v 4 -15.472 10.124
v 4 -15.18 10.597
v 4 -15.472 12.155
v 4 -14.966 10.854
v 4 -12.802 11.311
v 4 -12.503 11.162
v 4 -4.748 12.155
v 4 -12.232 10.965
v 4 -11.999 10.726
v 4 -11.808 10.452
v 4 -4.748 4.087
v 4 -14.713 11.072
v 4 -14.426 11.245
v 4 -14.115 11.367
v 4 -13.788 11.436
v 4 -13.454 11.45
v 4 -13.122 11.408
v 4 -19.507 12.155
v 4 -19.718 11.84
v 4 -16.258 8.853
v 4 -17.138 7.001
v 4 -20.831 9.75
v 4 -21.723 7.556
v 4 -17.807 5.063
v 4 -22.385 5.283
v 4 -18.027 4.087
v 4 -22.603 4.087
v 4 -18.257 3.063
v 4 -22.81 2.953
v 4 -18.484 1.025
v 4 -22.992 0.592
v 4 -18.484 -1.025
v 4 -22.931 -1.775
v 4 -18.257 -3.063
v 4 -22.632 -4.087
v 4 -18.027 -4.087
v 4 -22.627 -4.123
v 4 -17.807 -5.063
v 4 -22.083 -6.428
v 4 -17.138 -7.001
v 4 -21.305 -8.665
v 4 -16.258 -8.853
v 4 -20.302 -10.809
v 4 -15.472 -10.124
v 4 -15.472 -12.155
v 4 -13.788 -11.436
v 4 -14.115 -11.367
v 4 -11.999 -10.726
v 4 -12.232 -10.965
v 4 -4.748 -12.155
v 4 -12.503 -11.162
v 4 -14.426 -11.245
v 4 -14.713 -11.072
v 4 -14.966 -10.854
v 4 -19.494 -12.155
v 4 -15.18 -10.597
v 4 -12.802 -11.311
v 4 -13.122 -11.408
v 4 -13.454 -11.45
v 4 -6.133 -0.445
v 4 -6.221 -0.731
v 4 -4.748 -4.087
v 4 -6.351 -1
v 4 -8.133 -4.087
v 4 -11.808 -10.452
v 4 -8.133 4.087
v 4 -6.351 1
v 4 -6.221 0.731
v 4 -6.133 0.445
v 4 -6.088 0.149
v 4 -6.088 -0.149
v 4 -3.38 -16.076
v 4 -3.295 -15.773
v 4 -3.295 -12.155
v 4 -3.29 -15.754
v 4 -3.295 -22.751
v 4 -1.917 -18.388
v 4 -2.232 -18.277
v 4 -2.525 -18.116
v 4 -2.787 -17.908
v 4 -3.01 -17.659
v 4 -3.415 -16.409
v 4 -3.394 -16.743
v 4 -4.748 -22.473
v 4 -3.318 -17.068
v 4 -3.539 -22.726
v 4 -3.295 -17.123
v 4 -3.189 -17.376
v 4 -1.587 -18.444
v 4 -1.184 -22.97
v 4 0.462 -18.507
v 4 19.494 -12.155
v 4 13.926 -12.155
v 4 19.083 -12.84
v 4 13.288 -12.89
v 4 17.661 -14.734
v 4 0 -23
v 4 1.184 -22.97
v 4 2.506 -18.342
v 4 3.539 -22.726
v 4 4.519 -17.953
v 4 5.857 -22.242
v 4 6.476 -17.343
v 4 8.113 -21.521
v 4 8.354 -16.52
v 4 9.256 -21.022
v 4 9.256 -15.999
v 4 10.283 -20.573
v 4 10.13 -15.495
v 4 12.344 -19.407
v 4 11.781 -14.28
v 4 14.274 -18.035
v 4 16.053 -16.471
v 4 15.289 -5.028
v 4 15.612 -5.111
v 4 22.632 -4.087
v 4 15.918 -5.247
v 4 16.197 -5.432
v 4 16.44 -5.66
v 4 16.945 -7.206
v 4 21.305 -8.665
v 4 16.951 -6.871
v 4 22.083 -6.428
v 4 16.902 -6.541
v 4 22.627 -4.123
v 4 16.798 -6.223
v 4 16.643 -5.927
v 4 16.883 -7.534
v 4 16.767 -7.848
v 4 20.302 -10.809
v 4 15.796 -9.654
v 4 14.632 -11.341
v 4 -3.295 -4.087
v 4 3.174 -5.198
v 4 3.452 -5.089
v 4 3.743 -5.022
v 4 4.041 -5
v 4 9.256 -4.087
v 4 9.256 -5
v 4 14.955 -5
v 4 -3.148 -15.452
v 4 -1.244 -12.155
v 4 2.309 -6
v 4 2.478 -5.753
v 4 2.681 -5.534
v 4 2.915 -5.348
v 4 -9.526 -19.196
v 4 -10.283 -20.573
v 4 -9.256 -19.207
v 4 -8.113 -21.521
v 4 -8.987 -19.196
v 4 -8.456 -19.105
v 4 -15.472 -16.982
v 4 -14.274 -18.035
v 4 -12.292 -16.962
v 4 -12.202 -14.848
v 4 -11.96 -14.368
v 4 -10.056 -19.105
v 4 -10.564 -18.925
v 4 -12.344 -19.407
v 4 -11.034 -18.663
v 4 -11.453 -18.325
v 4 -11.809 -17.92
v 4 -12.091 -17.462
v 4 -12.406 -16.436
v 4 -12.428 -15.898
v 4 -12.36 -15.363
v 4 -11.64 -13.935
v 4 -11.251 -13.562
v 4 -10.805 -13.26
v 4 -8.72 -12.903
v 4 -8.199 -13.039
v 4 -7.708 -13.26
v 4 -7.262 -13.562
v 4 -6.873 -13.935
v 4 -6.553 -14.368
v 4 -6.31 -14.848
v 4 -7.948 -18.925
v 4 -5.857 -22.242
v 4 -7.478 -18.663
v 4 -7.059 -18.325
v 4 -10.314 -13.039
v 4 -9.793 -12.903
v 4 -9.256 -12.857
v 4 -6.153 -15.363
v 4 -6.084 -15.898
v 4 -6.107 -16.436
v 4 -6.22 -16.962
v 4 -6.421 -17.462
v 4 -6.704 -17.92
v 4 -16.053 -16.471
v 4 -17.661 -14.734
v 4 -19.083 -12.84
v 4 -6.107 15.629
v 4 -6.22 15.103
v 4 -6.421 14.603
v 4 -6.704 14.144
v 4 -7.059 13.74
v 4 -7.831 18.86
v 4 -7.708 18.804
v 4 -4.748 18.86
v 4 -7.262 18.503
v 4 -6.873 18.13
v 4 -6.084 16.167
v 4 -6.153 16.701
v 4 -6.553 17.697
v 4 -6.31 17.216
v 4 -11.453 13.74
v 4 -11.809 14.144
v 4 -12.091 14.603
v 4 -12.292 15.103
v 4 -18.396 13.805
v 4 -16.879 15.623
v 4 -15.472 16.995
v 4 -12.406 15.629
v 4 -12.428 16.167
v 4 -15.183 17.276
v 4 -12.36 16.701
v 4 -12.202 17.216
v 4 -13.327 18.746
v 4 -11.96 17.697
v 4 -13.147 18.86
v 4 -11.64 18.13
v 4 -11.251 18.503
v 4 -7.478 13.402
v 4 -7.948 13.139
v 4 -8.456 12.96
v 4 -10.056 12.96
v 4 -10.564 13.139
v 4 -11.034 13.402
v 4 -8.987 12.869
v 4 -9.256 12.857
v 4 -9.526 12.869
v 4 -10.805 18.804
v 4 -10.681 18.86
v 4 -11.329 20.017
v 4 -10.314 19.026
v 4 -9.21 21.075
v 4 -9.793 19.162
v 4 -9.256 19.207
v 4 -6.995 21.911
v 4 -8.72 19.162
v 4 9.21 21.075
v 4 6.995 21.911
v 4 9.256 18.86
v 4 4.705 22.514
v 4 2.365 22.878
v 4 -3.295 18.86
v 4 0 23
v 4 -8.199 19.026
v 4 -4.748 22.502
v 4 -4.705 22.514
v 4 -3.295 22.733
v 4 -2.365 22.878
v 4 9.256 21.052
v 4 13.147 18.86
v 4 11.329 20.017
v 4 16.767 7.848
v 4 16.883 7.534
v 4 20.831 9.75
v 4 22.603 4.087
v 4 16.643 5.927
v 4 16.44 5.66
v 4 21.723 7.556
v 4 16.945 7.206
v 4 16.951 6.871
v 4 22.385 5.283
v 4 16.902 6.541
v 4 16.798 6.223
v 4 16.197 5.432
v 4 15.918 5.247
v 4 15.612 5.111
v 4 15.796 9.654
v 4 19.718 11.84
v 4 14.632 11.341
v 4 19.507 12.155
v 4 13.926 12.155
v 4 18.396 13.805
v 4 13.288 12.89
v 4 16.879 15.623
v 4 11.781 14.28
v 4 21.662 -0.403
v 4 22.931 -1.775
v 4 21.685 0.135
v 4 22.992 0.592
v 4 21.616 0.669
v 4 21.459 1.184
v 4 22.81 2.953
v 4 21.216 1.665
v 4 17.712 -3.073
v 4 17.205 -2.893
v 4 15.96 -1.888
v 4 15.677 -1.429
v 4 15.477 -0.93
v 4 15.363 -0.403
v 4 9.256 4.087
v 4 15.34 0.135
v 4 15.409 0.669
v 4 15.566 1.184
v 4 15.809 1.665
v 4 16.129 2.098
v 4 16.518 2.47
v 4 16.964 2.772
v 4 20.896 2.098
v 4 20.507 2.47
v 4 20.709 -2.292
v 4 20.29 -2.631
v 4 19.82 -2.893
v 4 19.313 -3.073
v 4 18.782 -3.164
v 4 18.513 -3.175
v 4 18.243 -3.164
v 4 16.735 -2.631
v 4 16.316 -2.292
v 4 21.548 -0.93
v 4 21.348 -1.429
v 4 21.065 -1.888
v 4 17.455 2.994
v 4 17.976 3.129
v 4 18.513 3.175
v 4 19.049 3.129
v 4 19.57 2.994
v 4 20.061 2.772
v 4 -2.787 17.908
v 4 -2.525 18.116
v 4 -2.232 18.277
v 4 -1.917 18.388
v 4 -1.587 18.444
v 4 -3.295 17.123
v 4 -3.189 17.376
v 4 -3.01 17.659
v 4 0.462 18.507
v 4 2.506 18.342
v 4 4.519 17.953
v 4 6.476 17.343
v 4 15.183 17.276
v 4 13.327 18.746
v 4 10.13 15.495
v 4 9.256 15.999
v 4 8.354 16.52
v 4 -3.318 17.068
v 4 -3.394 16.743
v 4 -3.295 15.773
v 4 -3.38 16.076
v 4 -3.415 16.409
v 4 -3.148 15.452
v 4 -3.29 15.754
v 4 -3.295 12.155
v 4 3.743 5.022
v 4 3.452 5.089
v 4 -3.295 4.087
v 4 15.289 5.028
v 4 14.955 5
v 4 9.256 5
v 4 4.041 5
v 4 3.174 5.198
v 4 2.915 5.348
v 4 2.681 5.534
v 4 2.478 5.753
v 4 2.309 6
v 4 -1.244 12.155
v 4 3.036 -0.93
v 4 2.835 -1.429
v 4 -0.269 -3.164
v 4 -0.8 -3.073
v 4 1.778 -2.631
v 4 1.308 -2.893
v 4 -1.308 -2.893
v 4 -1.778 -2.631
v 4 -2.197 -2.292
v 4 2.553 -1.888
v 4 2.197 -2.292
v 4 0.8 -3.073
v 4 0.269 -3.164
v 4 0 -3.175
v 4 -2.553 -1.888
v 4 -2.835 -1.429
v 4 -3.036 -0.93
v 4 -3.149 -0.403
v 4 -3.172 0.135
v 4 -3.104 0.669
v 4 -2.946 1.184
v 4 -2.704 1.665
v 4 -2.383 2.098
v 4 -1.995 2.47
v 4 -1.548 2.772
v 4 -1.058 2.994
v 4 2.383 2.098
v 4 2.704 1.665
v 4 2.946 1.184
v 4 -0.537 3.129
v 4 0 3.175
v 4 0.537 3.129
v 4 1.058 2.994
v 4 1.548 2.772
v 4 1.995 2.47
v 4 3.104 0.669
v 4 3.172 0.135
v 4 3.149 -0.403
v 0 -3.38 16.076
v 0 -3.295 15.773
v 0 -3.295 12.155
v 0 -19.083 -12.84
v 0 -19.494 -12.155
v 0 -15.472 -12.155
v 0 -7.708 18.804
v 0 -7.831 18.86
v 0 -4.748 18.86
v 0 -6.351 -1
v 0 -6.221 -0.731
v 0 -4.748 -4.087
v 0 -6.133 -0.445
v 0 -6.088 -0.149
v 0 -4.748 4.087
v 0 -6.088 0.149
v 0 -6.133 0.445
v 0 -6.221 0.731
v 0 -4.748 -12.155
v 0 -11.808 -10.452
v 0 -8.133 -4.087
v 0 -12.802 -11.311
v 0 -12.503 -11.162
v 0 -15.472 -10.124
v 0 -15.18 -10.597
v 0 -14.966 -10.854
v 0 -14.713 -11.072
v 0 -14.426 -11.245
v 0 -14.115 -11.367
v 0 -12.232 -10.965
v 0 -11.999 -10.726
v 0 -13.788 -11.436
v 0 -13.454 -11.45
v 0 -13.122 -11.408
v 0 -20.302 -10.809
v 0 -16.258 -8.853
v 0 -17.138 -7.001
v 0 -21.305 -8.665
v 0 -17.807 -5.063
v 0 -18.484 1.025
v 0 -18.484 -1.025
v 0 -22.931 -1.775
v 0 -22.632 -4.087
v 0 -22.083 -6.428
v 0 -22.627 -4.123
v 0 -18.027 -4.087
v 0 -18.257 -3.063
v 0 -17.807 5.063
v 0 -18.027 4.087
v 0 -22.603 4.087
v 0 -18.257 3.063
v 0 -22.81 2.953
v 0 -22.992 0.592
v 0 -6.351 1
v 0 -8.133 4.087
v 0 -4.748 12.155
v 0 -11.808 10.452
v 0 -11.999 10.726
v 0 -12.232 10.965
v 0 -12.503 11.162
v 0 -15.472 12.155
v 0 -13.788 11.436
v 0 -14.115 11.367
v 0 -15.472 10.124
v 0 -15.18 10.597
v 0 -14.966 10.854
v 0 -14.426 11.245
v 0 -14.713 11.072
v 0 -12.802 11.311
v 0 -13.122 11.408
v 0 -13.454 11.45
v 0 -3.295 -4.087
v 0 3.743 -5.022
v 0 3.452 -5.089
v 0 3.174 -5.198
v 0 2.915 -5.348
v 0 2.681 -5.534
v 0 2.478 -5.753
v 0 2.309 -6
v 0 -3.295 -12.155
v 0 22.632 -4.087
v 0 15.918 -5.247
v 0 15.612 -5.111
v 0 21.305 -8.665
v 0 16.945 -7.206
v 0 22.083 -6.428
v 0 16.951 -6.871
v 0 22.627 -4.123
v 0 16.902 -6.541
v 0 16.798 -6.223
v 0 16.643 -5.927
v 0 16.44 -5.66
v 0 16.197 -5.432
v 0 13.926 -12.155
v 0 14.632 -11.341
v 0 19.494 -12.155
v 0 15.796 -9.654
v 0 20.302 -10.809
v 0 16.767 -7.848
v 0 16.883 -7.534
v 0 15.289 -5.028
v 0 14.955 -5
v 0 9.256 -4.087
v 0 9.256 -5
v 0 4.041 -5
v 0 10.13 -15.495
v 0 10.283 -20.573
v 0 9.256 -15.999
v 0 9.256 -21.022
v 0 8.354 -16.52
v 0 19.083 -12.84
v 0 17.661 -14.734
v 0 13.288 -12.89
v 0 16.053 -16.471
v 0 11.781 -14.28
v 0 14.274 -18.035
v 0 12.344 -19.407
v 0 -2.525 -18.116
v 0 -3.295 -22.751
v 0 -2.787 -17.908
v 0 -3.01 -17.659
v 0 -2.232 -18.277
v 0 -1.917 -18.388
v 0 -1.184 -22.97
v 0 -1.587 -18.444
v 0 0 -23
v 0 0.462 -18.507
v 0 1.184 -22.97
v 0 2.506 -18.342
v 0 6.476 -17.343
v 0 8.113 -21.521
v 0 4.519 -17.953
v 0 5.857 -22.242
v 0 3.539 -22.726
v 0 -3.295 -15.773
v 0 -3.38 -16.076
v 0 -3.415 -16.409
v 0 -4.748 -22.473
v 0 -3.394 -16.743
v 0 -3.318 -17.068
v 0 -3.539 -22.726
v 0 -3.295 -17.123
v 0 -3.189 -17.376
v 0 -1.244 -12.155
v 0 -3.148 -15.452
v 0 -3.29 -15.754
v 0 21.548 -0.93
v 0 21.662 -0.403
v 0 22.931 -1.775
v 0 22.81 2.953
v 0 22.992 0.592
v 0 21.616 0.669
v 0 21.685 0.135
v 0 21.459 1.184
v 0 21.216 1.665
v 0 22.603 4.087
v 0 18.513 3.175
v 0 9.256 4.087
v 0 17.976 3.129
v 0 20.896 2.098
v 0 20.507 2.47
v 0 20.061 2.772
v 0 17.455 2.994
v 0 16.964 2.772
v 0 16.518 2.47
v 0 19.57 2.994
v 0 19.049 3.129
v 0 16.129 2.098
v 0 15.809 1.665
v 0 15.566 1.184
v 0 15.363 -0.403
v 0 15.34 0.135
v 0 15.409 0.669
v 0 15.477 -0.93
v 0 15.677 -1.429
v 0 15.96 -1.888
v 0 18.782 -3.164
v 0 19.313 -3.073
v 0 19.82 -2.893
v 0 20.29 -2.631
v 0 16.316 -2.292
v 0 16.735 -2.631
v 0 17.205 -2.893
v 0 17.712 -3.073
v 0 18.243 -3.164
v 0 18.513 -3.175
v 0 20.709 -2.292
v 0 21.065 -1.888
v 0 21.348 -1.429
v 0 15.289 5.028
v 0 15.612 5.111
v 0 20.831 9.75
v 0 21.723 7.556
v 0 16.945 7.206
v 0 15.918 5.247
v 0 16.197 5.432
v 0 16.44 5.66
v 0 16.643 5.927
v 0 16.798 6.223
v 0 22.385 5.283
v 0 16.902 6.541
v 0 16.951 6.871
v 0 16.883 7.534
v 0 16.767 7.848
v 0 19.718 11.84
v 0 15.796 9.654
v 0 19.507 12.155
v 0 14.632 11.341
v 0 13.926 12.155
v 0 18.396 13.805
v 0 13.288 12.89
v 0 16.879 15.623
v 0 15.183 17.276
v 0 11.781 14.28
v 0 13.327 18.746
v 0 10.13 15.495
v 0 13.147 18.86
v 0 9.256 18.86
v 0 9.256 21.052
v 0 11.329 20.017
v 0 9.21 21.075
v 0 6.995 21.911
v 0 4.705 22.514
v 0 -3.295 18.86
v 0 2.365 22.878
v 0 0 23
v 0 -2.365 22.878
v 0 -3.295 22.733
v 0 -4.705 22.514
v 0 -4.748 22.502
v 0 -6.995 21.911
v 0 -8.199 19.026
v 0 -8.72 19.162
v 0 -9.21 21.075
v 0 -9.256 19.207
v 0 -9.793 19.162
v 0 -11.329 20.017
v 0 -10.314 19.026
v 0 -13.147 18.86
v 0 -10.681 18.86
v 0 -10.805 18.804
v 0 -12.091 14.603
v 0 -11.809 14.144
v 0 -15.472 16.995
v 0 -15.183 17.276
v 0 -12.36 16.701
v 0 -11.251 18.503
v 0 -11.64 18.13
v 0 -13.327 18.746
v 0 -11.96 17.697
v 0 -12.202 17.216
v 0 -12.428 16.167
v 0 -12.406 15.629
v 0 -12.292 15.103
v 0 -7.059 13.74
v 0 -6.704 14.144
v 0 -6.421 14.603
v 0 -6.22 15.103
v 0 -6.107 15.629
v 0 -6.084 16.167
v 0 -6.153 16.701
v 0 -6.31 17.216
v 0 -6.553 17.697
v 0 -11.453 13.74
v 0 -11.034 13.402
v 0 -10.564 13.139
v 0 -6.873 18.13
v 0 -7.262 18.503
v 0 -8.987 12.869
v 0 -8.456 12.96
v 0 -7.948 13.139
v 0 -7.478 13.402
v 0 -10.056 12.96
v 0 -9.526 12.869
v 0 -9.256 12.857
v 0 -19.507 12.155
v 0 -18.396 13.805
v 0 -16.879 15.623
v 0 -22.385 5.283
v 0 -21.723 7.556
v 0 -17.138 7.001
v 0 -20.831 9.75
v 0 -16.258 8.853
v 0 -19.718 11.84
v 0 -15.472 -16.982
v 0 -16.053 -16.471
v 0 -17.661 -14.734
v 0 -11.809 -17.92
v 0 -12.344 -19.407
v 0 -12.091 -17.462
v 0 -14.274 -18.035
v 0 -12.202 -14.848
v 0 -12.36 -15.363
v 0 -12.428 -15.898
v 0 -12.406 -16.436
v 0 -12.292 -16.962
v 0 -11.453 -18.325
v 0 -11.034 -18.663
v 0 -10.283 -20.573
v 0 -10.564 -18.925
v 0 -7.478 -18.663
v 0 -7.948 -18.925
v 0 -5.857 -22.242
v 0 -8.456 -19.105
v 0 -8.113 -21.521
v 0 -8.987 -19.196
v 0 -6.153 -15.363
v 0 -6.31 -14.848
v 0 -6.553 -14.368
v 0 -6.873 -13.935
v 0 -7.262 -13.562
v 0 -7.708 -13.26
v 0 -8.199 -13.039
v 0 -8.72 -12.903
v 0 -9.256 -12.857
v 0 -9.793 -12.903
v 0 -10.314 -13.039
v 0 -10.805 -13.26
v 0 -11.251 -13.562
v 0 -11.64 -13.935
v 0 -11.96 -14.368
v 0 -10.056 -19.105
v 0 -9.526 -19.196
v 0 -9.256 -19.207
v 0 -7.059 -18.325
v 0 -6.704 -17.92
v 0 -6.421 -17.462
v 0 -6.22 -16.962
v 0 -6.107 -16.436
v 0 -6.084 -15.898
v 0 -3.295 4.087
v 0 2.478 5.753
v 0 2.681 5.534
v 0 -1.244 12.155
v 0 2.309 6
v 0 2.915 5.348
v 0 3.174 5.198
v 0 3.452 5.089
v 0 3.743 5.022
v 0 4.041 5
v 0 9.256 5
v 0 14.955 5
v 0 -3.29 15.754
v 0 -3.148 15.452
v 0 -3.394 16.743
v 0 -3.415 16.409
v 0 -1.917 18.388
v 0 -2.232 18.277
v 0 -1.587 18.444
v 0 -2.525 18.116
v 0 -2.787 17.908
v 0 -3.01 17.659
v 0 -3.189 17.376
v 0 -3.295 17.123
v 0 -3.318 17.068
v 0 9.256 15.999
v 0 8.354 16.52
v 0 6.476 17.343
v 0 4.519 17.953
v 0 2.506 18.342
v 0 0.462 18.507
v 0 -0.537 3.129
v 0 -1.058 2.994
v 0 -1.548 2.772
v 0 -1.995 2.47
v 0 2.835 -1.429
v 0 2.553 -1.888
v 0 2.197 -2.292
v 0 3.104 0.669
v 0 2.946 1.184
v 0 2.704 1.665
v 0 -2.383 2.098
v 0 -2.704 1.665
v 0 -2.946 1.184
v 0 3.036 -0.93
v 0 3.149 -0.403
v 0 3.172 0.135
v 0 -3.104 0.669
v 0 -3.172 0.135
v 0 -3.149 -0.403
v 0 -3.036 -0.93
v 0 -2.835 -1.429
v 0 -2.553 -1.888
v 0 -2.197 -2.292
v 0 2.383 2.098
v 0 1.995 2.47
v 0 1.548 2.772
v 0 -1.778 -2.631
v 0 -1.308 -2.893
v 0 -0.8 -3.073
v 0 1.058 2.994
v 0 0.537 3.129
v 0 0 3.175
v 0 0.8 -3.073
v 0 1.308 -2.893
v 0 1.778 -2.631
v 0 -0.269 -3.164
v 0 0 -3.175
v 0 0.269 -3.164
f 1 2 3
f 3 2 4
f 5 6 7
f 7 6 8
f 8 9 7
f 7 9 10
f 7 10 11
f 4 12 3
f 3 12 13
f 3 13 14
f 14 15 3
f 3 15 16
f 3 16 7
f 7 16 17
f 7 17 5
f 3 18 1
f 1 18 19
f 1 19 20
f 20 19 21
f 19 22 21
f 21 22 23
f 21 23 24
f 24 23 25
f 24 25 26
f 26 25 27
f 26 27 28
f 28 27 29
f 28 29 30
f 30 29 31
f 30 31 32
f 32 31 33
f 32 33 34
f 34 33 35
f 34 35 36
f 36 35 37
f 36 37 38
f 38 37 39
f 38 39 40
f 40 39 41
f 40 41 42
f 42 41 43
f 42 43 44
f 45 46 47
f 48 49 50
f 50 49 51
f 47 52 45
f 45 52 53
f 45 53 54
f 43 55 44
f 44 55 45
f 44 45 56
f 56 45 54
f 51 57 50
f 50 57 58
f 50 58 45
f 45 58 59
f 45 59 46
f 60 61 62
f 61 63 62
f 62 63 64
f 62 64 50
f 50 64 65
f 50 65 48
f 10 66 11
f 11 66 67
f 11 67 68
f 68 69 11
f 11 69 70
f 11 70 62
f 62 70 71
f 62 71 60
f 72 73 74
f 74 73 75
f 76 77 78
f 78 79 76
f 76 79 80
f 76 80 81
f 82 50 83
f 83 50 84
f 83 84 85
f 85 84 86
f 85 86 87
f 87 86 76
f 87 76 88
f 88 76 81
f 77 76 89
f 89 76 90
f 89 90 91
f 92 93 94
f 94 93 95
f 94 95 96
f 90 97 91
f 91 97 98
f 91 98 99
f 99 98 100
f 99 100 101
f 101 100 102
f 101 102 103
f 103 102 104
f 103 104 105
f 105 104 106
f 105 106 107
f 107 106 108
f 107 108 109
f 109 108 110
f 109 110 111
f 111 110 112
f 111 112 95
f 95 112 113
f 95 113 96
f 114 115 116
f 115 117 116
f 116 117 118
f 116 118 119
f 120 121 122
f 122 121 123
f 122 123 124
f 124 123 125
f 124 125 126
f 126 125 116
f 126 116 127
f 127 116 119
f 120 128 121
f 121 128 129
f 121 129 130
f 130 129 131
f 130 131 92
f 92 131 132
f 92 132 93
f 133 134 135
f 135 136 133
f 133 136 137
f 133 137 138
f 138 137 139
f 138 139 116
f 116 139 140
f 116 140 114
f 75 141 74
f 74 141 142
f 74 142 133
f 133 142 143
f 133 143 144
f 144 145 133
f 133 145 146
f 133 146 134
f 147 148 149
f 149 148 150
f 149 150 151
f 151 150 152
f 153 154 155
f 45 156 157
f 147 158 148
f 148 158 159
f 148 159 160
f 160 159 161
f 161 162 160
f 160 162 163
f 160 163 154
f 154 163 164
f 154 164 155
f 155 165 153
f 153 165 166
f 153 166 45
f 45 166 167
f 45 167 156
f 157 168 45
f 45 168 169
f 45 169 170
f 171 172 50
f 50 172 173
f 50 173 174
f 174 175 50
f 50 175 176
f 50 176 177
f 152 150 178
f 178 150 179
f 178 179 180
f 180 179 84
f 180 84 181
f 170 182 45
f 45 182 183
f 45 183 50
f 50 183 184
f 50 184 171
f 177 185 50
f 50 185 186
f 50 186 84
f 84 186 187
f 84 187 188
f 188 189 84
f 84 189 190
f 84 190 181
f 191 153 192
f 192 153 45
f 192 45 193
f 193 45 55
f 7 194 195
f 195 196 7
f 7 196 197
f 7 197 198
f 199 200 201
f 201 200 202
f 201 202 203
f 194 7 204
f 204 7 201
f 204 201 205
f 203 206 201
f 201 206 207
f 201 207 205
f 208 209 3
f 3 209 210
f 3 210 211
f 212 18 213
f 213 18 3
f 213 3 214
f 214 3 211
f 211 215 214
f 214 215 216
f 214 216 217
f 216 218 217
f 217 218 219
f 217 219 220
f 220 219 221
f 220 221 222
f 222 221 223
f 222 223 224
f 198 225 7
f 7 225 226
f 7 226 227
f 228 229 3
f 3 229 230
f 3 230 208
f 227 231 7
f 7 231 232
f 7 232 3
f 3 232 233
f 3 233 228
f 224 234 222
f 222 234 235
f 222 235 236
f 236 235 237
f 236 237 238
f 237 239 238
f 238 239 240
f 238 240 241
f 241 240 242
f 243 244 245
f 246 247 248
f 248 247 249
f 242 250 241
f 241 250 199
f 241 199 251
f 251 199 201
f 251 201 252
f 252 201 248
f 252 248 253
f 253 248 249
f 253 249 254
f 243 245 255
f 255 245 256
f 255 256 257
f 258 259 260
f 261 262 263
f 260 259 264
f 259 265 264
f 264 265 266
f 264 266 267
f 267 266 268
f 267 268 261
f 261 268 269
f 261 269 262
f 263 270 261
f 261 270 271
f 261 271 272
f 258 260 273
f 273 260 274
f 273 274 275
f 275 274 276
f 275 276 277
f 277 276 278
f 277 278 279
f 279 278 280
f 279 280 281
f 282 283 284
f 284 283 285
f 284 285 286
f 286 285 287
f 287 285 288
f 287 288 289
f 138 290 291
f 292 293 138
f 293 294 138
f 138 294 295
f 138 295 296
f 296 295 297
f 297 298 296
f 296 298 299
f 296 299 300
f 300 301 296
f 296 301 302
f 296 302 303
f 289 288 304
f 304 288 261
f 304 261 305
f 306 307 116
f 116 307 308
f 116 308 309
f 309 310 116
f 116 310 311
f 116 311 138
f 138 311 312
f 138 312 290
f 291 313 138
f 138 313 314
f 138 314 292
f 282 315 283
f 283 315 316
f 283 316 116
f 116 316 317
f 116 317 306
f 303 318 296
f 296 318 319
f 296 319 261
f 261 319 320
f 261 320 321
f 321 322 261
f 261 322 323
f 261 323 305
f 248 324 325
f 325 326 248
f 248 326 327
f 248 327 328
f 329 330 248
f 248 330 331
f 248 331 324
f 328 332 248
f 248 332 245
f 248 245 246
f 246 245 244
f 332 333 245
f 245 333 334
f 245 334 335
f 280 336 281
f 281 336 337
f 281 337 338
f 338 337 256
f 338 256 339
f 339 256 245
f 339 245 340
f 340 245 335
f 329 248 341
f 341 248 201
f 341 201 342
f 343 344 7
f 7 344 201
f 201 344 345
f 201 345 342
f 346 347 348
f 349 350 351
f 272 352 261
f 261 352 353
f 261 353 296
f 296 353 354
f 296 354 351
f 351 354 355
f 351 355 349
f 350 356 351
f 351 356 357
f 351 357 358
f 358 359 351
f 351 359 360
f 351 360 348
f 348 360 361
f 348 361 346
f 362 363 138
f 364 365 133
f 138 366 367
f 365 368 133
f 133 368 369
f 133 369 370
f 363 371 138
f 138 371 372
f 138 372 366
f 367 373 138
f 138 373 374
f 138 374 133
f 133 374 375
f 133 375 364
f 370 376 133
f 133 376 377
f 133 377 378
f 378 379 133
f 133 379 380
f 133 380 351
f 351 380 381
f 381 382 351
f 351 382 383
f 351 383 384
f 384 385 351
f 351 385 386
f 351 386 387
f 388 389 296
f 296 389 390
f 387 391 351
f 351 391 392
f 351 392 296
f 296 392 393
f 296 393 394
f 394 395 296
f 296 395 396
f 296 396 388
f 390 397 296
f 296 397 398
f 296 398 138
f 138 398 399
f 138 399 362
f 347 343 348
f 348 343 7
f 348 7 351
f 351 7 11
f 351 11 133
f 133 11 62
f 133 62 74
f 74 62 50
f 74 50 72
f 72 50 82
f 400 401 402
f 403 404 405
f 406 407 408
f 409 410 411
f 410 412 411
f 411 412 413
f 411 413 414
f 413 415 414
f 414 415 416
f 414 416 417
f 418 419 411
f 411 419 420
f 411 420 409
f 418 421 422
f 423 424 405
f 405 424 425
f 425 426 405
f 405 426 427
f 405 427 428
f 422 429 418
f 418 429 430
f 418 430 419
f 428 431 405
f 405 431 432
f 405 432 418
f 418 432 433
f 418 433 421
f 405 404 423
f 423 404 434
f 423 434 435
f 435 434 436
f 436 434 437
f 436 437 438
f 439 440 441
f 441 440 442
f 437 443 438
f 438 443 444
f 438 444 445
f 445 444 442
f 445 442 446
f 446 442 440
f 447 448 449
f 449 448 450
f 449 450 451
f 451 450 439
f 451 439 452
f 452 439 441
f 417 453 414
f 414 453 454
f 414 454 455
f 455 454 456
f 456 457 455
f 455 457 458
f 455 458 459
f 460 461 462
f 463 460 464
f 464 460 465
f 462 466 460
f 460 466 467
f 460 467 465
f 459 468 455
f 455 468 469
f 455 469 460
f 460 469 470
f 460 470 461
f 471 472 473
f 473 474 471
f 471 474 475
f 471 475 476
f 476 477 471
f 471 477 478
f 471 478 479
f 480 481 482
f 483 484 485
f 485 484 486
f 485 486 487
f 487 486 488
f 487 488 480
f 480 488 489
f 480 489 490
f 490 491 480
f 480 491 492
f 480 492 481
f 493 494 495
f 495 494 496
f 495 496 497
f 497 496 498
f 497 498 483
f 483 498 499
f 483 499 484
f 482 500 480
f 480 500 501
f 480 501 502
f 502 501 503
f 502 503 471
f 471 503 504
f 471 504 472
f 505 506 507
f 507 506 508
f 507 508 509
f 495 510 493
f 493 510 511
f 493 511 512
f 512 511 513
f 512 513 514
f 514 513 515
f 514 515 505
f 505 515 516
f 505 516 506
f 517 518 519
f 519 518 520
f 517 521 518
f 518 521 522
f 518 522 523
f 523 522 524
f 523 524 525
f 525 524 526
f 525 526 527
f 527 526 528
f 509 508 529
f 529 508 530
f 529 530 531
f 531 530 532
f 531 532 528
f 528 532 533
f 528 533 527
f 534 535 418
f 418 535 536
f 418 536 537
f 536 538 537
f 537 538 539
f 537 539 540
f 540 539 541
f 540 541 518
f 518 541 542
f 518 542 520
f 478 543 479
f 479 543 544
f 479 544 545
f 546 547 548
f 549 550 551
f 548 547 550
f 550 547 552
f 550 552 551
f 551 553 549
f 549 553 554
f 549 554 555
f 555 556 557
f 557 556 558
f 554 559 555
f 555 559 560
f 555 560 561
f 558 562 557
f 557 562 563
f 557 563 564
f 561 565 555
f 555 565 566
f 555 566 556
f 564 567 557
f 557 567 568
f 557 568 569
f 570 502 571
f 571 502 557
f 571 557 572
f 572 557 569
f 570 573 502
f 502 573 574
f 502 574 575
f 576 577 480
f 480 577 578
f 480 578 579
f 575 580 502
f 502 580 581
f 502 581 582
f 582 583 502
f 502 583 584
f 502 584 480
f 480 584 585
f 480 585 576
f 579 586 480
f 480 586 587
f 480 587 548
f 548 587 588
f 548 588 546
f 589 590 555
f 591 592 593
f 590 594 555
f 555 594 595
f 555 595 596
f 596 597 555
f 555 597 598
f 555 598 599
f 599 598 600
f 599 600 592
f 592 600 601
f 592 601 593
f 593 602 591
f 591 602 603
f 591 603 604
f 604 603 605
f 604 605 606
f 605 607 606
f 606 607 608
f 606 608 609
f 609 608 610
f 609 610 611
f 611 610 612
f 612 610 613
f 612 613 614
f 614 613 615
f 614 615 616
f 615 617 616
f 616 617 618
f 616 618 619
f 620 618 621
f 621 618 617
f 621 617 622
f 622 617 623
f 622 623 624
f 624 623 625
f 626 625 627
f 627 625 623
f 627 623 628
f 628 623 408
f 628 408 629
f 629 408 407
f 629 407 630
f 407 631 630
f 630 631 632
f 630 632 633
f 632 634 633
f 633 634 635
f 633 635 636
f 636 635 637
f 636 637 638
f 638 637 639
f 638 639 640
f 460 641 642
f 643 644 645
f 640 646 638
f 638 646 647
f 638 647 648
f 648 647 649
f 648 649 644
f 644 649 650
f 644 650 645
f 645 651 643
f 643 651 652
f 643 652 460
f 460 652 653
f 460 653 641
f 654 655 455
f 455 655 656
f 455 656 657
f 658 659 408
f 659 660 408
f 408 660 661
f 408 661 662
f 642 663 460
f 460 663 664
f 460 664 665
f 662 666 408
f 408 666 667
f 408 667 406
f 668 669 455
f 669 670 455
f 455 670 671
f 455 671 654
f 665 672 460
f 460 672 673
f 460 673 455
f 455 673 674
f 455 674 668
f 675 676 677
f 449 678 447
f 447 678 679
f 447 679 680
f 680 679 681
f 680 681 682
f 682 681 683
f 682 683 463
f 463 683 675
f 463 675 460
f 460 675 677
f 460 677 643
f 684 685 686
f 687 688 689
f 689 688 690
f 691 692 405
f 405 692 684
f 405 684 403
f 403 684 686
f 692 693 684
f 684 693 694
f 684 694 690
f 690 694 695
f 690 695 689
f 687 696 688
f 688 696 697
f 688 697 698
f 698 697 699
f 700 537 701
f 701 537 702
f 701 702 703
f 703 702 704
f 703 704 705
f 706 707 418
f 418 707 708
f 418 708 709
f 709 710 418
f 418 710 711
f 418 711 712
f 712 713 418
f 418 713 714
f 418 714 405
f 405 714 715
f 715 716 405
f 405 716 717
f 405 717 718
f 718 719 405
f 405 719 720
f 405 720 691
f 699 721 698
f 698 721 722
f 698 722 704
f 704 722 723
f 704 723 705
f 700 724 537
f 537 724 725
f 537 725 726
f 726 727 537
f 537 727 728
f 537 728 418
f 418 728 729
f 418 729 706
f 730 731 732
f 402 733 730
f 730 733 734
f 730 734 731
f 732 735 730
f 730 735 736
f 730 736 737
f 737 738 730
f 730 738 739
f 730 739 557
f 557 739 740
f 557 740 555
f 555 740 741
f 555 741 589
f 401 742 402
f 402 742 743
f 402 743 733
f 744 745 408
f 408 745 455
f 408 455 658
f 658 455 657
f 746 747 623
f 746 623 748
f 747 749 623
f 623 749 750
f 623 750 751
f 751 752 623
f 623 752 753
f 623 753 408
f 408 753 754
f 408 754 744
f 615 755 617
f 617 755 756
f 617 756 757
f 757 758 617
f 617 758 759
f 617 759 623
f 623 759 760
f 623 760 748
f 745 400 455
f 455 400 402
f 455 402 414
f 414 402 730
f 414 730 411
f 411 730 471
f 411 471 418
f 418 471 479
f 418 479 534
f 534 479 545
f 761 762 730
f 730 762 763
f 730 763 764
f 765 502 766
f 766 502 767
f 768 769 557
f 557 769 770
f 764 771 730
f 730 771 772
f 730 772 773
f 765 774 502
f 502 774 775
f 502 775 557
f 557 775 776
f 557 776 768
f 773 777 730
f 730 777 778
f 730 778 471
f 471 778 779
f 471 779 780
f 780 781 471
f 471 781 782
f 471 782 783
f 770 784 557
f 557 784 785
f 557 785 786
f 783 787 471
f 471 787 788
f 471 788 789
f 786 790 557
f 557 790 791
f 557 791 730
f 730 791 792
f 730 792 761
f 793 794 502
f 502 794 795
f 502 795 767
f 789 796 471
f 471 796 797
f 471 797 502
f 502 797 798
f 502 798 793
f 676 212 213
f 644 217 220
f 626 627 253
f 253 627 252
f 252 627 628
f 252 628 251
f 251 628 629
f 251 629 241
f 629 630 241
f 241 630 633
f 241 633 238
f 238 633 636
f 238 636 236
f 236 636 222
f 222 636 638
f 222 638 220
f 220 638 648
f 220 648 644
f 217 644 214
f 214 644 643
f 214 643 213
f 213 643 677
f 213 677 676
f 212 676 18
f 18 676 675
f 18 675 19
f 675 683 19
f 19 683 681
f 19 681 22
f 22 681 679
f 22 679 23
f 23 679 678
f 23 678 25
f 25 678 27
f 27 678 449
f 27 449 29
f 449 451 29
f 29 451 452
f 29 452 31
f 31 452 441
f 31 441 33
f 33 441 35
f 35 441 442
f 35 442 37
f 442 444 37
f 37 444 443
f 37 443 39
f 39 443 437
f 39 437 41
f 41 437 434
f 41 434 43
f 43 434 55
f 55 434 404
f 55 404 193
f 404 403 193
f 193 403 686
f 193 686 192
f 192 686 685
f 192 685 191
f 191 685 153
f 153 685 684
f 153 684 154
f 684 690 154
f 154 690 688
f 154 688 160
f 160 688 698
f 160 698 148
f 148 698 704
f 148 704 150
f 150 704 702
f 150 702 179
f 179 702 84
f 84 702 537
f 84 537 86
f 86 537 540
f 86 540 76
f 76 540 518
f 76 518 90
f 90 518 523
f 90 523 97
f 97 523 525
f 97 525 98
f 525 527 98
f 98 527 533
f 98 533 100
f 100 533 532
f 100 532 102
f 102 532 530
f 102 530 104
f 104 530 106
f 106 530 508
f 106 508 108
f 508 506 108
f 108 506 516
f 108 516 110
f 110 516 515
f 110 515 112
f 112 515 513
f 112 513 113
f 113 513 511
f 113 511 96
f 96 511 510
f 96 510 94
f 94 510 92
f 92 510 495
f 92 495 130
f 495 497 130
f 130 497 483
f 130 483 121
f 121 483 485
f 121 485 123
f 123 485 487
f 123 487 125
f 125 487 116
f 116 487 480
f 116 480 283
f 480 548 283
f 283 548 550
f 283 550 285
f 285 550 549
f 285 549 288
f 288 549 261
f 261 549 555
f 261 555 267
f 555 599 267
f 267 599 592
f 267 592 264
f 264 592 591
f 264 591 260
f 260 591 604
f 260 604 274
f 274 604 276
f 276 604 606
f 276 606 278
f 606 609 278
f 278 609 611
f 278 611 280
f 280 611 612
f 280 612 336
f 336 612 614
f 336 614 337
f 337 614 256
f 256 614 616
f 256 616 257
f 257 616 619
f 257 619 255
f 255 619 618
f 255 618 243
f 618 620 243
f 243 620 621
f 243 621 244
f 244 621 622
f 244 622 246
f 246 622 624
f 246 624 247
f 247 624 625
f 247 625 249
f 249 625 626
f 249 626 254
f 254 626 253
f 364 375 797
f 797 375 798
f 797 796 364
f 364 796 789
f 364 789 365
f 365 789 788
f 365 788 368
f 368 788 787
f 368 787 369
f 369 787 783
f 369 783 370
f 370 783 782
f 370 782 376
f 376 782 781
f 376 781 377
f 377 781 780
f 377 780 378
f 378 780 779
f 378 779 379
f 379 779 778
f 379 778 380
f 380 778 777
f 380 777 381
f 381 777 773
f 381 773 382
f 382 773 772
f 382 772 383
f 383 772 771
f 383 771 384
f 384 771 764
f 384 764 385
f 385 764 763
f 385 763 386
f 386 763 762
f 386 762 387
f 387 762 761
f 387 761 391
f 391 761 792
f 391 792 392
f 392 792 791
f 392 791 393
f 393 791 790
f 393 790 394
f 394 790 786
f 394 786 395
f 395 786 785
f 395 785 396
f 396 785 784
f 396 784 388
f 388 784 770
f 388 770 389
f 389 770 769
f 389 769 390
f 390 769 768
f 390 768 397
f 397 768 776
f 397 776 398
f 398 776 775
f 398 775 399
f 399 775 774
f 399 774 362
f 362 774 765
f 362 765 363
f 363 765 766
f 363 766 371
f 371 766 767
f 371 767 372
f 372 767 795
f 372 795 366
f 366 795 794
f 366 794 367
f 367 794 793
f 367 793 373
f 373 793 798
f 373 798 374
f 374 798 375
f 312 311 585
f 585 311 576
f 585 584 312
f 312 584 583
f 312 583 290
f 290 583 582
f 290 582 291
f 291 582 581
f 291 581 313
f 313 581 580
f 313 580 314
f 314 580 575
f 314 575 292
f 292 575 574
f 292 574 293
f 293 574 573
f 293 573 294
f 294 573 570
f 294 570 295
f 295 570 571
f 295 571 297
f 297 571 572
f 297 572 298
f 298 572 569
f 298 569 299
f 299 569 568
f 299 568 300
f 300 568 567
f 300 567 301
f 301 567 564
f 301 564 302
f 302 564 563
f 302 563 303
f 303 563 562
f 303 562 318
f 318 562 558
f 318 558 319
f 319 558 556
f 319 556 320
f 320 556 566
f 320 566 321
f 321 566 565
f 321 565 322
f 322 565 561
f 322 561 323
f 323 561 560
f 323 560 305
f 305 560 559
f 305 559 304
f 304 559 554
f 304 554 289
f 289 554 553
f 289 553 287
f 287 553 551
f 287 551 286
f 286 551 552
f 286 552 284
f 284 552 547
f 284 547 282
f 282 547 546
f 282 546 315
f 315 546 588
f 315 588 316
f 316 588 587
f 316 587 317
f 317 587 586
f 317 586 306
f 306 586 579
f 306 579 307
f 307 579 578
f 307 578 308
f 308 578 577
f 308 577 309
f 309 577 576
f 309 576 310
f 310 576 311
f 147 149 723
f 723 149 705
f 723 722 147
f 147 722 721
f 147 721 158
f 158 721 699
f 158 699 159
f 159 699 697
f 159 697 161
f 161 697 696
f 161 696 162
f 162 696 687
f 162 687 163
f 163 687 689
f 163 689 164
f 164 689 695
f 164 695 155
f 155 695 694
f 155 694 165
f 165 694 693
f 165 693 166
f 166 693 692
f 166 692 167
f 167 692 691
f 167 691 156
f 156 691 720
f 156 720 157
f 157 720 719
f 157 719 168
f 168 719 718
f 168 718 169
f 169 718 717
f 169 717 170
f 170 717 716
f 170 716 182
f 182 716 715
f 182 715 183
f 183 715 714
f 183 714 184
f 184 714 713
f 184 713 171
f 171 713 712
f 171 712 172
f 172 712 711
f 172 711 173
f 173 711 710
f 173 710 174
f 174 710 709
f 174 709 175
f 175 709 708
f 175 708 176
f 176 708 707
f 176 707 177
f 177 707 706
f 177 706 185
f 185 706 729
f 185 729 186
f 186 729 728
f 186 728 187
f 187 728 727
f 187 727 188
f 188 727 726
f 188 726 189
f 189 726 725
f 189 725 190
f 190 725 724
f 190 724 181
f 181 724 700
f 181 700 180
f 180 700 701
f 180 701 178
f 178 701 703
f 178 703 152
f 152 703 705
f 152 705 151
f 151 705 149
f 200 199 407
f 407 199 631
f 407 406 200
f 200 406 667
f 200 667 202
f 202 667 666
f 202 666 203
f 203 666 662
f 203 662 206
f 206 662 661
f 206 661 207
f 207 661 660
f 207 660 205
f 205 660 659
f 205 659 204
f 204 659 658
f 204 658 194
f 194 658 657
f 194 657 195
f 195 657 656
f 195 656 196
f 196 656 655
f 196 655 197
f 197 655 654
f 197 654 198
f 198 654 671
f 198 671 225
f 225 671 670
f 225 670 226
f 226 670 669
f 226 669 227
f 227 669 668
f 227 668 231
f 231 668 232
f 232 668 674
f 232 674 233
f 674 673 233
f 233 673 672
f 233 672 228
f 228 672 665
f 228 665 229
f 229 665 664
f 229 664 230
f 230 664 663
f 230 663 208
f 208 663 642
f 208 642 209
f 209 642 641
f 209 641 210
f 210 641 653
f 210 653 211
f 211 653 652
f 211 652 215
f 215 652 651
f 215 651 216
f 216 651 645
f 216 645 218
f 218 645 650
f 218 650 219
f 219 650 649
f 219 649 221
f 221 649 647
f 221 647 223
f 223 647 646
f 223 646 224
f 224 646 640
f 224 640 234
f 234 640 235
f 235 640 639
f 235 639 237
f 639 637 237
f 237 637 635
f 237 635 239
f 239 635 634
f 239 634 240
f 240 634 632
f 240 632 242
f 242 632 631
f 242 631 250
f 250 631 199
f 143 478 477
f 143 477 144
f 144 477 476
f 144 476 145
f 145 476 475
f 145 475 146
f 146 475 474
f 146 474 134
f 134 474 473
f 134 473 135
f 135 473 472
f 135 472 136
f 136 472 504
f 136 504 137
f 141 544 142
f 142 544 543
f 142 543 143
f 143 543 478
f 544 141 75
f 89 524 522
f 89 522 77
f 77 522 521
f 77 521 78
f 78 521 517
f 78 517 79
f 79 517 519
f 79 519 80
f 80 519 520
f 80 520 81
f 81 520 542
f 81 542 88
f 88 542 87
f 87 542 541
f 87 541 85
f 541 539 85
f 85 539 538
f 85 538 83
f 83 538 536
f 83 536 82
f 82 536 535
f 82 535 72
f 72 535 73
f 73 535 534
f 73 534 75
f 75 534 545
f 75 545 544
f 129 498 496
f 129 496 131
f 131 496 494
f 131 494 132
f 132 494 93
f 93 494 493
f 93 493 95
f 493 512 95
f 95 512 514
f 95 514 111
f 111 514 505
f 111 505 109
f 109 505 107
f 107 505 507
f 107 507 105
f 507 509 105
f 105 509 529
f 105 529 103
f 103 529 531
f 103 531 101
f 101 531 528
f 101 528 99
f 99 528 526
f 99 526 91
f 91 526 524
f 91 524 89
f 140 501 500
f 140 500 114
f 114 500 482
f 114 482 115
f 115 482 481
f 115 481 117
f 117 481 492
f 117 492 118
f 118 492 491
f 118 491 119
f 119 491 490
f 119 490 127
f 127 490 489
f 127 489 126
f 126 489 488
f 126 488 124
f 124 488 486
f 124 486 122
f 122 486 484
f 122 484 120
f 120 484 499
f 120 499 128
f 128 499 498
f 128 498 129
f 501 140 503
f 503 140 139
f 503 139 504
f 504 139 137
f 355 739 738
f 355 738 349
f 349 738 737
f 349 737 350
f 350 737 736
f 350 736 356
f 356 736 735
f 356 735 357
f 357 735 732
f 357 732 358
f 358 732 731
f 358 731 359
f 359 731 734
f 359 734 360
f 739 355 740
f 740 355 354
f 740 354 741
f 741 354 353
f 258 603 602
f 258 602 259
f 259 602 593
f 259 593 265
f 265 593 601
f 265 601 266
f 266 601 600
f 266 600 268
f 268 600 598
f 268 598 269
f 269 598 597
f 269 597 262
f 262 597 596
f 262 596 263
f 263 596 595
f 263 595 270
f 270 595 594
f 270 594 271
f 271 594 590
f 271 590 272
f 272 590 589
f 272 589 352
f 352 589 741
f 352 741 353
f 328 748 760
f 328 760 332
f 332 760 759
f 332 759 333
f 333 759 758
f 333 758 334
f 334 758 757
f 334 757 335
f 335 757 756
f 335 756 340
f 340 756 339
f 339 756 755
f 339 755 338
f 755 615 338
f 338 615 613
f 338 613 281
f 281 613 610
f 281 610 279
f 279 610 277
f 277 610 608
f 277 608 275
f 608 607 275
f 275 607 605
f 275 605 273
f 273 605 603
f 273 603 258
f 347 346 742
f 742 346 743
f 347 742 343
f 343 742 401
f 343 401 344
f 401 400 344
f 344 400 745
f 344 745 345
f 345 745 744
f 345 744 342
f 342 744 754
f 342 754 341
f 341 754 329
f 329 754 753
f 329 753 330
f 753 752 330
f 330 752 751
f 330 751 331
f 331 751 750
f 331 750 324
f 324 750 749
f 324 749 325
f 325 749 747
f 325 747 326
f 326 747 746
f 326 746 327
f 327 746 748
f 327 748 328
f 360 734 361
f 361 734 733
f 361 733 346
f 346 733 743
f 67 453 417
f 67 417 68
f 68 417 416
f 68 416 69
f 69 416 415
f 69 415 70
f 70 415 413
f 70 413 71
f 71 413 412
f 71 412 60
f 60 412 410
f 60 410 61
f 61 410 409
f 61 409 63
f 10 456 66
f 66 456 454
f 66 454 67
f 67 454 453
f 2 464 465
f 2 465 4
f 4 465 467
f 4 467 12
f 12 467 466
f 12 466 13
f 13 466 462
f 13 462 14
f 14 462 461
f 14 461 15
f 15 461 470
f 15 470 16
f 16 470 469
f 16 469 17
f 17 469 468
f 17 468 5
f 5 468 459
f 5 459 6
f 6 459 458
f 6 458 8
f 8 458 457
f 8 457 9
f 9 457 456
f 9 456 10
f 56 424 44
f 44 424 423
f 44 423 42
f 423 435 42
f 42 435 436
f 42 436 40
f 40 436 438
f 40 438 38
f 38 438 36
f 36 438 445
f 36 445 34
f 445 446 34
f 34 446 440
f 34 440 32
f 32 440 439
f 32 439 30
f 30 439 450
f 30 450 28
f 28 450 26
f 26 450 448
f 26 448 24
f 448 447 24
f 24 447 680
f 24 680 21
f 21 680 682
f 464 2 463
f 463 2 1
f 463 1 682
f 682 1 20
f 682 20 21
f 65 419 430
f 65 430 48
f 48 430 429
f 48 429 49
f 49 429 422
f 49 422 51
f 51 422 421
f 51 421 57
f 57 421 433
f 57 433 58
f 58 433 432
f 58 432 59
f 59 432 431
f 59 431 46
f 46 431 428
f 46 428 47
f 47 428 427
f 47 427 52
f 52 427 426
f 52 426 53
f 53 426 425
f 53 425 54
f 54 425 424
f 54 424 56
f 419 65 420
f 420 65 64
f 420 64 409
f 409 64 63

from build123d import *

# Parameters (mm, degrees)
SKETCH1_R           = 23
SKETCH1_R_2         = 3.175
BOSS_EXTRUDE1_DEPTH = 4


with BuildPart() as part:
    # Sketch1 → Boss-Extrude1 (new body)
    with BuildSketch(Plane(origin=(0, 0, 0), x_dir=(0, 0, -1), z_dir=(1, 0, 0))):
        Circle(SKETCH1_R)
        Circle(SKETCH1_R_2, mode=Mode.SUBTRACT)
        with Locations((0, 18.5125)):
            Circle(SKETCH1_R_2, mode=Mode.SUBTRACT)
        with Locations((16.032295288, -9.25625)):
            Circle(SKETCH1_R_2, mode=Mode.SUBTRACT)
        with Locations((-16.032295288, -9.25625)):
            Circle(SKETCH1_R_2, mode=Mode.SUBTRACT)
        with BuildLine():
            Line((6, 2.309401077), (15.451717731, -3.1475507))
            ThreePointArc((15.451717731, -3.1475507), (17.376490414, -3.188857015), (18.444355761, -1.586945753))
            ThreePointArc((18.444355761, -1.586945753), (16.032295288, 9.25625), (7.847842544, 16.766753522))
            ThreePointArc((7.847842544, 16.766753522), (5.926614023, 16.642910634), (5, 14.955355437))
            Line((5, 14.955355437), (5, 4.041451884))
            ThreePointArc((5, 4.041451884), (5.267949192, 3.041451884), (6, 2.309401077))
        make_face(mode=Mode.SUBTRACT)
        with BuildLine():
            Line((-5, 4.041451884), (-5, 14.955355437))
            ThreePointArc((-5, 14.955355437), (-5.926614023, 16.642910634), (-7.847842544, 16.766753522))
            ThreePointArc((-7.847842544, 16.766753522), (-16.032295288, 9.25625), (-18.444355761, -1.586945753))
            ThreePointArc((-18.444355761, -1.586945753), (-17.376490414, -3.188857015), (-15.451717731, -3.1475507))
            Line((-15.451717731, -3.1475507), (-6, 2.309401077))
            ThreePointArc((-6, 2.309401077), (-5.267949192, 3.041451884), (-5, 4.041451884))
        make_face(mode=Mode.SUBTRACT)
        with BuildLine():
            Line((-1, -6.350852961), (-10.451717731, -11.807804737))
            ThreePointArc((-10.451717731, -11.807804737), (-11.449876391, -13.454053619), (-10.596513217, -15.179807769))
            ThreePointArc((-10.596513217, -15.179807769), (0, -18.5125), (10.596513217, -15.179807769))
            ThreePointArc((10.596513217, -15.179807769), (11.449876391, -13.454053619), (10.451717731, -11.807804737))
            Line((10.451717731, -11.807804737), (1, -6.350852961))
            ThreePointArc((1, -6.350852961), (0, -6.082903769), (-1, -6.350852961))
        make_face(mode=Mode.SUBTRACT)
    extrude(amount=BOSS_EXTRUDE1_DEPTH)


solid = part.part
